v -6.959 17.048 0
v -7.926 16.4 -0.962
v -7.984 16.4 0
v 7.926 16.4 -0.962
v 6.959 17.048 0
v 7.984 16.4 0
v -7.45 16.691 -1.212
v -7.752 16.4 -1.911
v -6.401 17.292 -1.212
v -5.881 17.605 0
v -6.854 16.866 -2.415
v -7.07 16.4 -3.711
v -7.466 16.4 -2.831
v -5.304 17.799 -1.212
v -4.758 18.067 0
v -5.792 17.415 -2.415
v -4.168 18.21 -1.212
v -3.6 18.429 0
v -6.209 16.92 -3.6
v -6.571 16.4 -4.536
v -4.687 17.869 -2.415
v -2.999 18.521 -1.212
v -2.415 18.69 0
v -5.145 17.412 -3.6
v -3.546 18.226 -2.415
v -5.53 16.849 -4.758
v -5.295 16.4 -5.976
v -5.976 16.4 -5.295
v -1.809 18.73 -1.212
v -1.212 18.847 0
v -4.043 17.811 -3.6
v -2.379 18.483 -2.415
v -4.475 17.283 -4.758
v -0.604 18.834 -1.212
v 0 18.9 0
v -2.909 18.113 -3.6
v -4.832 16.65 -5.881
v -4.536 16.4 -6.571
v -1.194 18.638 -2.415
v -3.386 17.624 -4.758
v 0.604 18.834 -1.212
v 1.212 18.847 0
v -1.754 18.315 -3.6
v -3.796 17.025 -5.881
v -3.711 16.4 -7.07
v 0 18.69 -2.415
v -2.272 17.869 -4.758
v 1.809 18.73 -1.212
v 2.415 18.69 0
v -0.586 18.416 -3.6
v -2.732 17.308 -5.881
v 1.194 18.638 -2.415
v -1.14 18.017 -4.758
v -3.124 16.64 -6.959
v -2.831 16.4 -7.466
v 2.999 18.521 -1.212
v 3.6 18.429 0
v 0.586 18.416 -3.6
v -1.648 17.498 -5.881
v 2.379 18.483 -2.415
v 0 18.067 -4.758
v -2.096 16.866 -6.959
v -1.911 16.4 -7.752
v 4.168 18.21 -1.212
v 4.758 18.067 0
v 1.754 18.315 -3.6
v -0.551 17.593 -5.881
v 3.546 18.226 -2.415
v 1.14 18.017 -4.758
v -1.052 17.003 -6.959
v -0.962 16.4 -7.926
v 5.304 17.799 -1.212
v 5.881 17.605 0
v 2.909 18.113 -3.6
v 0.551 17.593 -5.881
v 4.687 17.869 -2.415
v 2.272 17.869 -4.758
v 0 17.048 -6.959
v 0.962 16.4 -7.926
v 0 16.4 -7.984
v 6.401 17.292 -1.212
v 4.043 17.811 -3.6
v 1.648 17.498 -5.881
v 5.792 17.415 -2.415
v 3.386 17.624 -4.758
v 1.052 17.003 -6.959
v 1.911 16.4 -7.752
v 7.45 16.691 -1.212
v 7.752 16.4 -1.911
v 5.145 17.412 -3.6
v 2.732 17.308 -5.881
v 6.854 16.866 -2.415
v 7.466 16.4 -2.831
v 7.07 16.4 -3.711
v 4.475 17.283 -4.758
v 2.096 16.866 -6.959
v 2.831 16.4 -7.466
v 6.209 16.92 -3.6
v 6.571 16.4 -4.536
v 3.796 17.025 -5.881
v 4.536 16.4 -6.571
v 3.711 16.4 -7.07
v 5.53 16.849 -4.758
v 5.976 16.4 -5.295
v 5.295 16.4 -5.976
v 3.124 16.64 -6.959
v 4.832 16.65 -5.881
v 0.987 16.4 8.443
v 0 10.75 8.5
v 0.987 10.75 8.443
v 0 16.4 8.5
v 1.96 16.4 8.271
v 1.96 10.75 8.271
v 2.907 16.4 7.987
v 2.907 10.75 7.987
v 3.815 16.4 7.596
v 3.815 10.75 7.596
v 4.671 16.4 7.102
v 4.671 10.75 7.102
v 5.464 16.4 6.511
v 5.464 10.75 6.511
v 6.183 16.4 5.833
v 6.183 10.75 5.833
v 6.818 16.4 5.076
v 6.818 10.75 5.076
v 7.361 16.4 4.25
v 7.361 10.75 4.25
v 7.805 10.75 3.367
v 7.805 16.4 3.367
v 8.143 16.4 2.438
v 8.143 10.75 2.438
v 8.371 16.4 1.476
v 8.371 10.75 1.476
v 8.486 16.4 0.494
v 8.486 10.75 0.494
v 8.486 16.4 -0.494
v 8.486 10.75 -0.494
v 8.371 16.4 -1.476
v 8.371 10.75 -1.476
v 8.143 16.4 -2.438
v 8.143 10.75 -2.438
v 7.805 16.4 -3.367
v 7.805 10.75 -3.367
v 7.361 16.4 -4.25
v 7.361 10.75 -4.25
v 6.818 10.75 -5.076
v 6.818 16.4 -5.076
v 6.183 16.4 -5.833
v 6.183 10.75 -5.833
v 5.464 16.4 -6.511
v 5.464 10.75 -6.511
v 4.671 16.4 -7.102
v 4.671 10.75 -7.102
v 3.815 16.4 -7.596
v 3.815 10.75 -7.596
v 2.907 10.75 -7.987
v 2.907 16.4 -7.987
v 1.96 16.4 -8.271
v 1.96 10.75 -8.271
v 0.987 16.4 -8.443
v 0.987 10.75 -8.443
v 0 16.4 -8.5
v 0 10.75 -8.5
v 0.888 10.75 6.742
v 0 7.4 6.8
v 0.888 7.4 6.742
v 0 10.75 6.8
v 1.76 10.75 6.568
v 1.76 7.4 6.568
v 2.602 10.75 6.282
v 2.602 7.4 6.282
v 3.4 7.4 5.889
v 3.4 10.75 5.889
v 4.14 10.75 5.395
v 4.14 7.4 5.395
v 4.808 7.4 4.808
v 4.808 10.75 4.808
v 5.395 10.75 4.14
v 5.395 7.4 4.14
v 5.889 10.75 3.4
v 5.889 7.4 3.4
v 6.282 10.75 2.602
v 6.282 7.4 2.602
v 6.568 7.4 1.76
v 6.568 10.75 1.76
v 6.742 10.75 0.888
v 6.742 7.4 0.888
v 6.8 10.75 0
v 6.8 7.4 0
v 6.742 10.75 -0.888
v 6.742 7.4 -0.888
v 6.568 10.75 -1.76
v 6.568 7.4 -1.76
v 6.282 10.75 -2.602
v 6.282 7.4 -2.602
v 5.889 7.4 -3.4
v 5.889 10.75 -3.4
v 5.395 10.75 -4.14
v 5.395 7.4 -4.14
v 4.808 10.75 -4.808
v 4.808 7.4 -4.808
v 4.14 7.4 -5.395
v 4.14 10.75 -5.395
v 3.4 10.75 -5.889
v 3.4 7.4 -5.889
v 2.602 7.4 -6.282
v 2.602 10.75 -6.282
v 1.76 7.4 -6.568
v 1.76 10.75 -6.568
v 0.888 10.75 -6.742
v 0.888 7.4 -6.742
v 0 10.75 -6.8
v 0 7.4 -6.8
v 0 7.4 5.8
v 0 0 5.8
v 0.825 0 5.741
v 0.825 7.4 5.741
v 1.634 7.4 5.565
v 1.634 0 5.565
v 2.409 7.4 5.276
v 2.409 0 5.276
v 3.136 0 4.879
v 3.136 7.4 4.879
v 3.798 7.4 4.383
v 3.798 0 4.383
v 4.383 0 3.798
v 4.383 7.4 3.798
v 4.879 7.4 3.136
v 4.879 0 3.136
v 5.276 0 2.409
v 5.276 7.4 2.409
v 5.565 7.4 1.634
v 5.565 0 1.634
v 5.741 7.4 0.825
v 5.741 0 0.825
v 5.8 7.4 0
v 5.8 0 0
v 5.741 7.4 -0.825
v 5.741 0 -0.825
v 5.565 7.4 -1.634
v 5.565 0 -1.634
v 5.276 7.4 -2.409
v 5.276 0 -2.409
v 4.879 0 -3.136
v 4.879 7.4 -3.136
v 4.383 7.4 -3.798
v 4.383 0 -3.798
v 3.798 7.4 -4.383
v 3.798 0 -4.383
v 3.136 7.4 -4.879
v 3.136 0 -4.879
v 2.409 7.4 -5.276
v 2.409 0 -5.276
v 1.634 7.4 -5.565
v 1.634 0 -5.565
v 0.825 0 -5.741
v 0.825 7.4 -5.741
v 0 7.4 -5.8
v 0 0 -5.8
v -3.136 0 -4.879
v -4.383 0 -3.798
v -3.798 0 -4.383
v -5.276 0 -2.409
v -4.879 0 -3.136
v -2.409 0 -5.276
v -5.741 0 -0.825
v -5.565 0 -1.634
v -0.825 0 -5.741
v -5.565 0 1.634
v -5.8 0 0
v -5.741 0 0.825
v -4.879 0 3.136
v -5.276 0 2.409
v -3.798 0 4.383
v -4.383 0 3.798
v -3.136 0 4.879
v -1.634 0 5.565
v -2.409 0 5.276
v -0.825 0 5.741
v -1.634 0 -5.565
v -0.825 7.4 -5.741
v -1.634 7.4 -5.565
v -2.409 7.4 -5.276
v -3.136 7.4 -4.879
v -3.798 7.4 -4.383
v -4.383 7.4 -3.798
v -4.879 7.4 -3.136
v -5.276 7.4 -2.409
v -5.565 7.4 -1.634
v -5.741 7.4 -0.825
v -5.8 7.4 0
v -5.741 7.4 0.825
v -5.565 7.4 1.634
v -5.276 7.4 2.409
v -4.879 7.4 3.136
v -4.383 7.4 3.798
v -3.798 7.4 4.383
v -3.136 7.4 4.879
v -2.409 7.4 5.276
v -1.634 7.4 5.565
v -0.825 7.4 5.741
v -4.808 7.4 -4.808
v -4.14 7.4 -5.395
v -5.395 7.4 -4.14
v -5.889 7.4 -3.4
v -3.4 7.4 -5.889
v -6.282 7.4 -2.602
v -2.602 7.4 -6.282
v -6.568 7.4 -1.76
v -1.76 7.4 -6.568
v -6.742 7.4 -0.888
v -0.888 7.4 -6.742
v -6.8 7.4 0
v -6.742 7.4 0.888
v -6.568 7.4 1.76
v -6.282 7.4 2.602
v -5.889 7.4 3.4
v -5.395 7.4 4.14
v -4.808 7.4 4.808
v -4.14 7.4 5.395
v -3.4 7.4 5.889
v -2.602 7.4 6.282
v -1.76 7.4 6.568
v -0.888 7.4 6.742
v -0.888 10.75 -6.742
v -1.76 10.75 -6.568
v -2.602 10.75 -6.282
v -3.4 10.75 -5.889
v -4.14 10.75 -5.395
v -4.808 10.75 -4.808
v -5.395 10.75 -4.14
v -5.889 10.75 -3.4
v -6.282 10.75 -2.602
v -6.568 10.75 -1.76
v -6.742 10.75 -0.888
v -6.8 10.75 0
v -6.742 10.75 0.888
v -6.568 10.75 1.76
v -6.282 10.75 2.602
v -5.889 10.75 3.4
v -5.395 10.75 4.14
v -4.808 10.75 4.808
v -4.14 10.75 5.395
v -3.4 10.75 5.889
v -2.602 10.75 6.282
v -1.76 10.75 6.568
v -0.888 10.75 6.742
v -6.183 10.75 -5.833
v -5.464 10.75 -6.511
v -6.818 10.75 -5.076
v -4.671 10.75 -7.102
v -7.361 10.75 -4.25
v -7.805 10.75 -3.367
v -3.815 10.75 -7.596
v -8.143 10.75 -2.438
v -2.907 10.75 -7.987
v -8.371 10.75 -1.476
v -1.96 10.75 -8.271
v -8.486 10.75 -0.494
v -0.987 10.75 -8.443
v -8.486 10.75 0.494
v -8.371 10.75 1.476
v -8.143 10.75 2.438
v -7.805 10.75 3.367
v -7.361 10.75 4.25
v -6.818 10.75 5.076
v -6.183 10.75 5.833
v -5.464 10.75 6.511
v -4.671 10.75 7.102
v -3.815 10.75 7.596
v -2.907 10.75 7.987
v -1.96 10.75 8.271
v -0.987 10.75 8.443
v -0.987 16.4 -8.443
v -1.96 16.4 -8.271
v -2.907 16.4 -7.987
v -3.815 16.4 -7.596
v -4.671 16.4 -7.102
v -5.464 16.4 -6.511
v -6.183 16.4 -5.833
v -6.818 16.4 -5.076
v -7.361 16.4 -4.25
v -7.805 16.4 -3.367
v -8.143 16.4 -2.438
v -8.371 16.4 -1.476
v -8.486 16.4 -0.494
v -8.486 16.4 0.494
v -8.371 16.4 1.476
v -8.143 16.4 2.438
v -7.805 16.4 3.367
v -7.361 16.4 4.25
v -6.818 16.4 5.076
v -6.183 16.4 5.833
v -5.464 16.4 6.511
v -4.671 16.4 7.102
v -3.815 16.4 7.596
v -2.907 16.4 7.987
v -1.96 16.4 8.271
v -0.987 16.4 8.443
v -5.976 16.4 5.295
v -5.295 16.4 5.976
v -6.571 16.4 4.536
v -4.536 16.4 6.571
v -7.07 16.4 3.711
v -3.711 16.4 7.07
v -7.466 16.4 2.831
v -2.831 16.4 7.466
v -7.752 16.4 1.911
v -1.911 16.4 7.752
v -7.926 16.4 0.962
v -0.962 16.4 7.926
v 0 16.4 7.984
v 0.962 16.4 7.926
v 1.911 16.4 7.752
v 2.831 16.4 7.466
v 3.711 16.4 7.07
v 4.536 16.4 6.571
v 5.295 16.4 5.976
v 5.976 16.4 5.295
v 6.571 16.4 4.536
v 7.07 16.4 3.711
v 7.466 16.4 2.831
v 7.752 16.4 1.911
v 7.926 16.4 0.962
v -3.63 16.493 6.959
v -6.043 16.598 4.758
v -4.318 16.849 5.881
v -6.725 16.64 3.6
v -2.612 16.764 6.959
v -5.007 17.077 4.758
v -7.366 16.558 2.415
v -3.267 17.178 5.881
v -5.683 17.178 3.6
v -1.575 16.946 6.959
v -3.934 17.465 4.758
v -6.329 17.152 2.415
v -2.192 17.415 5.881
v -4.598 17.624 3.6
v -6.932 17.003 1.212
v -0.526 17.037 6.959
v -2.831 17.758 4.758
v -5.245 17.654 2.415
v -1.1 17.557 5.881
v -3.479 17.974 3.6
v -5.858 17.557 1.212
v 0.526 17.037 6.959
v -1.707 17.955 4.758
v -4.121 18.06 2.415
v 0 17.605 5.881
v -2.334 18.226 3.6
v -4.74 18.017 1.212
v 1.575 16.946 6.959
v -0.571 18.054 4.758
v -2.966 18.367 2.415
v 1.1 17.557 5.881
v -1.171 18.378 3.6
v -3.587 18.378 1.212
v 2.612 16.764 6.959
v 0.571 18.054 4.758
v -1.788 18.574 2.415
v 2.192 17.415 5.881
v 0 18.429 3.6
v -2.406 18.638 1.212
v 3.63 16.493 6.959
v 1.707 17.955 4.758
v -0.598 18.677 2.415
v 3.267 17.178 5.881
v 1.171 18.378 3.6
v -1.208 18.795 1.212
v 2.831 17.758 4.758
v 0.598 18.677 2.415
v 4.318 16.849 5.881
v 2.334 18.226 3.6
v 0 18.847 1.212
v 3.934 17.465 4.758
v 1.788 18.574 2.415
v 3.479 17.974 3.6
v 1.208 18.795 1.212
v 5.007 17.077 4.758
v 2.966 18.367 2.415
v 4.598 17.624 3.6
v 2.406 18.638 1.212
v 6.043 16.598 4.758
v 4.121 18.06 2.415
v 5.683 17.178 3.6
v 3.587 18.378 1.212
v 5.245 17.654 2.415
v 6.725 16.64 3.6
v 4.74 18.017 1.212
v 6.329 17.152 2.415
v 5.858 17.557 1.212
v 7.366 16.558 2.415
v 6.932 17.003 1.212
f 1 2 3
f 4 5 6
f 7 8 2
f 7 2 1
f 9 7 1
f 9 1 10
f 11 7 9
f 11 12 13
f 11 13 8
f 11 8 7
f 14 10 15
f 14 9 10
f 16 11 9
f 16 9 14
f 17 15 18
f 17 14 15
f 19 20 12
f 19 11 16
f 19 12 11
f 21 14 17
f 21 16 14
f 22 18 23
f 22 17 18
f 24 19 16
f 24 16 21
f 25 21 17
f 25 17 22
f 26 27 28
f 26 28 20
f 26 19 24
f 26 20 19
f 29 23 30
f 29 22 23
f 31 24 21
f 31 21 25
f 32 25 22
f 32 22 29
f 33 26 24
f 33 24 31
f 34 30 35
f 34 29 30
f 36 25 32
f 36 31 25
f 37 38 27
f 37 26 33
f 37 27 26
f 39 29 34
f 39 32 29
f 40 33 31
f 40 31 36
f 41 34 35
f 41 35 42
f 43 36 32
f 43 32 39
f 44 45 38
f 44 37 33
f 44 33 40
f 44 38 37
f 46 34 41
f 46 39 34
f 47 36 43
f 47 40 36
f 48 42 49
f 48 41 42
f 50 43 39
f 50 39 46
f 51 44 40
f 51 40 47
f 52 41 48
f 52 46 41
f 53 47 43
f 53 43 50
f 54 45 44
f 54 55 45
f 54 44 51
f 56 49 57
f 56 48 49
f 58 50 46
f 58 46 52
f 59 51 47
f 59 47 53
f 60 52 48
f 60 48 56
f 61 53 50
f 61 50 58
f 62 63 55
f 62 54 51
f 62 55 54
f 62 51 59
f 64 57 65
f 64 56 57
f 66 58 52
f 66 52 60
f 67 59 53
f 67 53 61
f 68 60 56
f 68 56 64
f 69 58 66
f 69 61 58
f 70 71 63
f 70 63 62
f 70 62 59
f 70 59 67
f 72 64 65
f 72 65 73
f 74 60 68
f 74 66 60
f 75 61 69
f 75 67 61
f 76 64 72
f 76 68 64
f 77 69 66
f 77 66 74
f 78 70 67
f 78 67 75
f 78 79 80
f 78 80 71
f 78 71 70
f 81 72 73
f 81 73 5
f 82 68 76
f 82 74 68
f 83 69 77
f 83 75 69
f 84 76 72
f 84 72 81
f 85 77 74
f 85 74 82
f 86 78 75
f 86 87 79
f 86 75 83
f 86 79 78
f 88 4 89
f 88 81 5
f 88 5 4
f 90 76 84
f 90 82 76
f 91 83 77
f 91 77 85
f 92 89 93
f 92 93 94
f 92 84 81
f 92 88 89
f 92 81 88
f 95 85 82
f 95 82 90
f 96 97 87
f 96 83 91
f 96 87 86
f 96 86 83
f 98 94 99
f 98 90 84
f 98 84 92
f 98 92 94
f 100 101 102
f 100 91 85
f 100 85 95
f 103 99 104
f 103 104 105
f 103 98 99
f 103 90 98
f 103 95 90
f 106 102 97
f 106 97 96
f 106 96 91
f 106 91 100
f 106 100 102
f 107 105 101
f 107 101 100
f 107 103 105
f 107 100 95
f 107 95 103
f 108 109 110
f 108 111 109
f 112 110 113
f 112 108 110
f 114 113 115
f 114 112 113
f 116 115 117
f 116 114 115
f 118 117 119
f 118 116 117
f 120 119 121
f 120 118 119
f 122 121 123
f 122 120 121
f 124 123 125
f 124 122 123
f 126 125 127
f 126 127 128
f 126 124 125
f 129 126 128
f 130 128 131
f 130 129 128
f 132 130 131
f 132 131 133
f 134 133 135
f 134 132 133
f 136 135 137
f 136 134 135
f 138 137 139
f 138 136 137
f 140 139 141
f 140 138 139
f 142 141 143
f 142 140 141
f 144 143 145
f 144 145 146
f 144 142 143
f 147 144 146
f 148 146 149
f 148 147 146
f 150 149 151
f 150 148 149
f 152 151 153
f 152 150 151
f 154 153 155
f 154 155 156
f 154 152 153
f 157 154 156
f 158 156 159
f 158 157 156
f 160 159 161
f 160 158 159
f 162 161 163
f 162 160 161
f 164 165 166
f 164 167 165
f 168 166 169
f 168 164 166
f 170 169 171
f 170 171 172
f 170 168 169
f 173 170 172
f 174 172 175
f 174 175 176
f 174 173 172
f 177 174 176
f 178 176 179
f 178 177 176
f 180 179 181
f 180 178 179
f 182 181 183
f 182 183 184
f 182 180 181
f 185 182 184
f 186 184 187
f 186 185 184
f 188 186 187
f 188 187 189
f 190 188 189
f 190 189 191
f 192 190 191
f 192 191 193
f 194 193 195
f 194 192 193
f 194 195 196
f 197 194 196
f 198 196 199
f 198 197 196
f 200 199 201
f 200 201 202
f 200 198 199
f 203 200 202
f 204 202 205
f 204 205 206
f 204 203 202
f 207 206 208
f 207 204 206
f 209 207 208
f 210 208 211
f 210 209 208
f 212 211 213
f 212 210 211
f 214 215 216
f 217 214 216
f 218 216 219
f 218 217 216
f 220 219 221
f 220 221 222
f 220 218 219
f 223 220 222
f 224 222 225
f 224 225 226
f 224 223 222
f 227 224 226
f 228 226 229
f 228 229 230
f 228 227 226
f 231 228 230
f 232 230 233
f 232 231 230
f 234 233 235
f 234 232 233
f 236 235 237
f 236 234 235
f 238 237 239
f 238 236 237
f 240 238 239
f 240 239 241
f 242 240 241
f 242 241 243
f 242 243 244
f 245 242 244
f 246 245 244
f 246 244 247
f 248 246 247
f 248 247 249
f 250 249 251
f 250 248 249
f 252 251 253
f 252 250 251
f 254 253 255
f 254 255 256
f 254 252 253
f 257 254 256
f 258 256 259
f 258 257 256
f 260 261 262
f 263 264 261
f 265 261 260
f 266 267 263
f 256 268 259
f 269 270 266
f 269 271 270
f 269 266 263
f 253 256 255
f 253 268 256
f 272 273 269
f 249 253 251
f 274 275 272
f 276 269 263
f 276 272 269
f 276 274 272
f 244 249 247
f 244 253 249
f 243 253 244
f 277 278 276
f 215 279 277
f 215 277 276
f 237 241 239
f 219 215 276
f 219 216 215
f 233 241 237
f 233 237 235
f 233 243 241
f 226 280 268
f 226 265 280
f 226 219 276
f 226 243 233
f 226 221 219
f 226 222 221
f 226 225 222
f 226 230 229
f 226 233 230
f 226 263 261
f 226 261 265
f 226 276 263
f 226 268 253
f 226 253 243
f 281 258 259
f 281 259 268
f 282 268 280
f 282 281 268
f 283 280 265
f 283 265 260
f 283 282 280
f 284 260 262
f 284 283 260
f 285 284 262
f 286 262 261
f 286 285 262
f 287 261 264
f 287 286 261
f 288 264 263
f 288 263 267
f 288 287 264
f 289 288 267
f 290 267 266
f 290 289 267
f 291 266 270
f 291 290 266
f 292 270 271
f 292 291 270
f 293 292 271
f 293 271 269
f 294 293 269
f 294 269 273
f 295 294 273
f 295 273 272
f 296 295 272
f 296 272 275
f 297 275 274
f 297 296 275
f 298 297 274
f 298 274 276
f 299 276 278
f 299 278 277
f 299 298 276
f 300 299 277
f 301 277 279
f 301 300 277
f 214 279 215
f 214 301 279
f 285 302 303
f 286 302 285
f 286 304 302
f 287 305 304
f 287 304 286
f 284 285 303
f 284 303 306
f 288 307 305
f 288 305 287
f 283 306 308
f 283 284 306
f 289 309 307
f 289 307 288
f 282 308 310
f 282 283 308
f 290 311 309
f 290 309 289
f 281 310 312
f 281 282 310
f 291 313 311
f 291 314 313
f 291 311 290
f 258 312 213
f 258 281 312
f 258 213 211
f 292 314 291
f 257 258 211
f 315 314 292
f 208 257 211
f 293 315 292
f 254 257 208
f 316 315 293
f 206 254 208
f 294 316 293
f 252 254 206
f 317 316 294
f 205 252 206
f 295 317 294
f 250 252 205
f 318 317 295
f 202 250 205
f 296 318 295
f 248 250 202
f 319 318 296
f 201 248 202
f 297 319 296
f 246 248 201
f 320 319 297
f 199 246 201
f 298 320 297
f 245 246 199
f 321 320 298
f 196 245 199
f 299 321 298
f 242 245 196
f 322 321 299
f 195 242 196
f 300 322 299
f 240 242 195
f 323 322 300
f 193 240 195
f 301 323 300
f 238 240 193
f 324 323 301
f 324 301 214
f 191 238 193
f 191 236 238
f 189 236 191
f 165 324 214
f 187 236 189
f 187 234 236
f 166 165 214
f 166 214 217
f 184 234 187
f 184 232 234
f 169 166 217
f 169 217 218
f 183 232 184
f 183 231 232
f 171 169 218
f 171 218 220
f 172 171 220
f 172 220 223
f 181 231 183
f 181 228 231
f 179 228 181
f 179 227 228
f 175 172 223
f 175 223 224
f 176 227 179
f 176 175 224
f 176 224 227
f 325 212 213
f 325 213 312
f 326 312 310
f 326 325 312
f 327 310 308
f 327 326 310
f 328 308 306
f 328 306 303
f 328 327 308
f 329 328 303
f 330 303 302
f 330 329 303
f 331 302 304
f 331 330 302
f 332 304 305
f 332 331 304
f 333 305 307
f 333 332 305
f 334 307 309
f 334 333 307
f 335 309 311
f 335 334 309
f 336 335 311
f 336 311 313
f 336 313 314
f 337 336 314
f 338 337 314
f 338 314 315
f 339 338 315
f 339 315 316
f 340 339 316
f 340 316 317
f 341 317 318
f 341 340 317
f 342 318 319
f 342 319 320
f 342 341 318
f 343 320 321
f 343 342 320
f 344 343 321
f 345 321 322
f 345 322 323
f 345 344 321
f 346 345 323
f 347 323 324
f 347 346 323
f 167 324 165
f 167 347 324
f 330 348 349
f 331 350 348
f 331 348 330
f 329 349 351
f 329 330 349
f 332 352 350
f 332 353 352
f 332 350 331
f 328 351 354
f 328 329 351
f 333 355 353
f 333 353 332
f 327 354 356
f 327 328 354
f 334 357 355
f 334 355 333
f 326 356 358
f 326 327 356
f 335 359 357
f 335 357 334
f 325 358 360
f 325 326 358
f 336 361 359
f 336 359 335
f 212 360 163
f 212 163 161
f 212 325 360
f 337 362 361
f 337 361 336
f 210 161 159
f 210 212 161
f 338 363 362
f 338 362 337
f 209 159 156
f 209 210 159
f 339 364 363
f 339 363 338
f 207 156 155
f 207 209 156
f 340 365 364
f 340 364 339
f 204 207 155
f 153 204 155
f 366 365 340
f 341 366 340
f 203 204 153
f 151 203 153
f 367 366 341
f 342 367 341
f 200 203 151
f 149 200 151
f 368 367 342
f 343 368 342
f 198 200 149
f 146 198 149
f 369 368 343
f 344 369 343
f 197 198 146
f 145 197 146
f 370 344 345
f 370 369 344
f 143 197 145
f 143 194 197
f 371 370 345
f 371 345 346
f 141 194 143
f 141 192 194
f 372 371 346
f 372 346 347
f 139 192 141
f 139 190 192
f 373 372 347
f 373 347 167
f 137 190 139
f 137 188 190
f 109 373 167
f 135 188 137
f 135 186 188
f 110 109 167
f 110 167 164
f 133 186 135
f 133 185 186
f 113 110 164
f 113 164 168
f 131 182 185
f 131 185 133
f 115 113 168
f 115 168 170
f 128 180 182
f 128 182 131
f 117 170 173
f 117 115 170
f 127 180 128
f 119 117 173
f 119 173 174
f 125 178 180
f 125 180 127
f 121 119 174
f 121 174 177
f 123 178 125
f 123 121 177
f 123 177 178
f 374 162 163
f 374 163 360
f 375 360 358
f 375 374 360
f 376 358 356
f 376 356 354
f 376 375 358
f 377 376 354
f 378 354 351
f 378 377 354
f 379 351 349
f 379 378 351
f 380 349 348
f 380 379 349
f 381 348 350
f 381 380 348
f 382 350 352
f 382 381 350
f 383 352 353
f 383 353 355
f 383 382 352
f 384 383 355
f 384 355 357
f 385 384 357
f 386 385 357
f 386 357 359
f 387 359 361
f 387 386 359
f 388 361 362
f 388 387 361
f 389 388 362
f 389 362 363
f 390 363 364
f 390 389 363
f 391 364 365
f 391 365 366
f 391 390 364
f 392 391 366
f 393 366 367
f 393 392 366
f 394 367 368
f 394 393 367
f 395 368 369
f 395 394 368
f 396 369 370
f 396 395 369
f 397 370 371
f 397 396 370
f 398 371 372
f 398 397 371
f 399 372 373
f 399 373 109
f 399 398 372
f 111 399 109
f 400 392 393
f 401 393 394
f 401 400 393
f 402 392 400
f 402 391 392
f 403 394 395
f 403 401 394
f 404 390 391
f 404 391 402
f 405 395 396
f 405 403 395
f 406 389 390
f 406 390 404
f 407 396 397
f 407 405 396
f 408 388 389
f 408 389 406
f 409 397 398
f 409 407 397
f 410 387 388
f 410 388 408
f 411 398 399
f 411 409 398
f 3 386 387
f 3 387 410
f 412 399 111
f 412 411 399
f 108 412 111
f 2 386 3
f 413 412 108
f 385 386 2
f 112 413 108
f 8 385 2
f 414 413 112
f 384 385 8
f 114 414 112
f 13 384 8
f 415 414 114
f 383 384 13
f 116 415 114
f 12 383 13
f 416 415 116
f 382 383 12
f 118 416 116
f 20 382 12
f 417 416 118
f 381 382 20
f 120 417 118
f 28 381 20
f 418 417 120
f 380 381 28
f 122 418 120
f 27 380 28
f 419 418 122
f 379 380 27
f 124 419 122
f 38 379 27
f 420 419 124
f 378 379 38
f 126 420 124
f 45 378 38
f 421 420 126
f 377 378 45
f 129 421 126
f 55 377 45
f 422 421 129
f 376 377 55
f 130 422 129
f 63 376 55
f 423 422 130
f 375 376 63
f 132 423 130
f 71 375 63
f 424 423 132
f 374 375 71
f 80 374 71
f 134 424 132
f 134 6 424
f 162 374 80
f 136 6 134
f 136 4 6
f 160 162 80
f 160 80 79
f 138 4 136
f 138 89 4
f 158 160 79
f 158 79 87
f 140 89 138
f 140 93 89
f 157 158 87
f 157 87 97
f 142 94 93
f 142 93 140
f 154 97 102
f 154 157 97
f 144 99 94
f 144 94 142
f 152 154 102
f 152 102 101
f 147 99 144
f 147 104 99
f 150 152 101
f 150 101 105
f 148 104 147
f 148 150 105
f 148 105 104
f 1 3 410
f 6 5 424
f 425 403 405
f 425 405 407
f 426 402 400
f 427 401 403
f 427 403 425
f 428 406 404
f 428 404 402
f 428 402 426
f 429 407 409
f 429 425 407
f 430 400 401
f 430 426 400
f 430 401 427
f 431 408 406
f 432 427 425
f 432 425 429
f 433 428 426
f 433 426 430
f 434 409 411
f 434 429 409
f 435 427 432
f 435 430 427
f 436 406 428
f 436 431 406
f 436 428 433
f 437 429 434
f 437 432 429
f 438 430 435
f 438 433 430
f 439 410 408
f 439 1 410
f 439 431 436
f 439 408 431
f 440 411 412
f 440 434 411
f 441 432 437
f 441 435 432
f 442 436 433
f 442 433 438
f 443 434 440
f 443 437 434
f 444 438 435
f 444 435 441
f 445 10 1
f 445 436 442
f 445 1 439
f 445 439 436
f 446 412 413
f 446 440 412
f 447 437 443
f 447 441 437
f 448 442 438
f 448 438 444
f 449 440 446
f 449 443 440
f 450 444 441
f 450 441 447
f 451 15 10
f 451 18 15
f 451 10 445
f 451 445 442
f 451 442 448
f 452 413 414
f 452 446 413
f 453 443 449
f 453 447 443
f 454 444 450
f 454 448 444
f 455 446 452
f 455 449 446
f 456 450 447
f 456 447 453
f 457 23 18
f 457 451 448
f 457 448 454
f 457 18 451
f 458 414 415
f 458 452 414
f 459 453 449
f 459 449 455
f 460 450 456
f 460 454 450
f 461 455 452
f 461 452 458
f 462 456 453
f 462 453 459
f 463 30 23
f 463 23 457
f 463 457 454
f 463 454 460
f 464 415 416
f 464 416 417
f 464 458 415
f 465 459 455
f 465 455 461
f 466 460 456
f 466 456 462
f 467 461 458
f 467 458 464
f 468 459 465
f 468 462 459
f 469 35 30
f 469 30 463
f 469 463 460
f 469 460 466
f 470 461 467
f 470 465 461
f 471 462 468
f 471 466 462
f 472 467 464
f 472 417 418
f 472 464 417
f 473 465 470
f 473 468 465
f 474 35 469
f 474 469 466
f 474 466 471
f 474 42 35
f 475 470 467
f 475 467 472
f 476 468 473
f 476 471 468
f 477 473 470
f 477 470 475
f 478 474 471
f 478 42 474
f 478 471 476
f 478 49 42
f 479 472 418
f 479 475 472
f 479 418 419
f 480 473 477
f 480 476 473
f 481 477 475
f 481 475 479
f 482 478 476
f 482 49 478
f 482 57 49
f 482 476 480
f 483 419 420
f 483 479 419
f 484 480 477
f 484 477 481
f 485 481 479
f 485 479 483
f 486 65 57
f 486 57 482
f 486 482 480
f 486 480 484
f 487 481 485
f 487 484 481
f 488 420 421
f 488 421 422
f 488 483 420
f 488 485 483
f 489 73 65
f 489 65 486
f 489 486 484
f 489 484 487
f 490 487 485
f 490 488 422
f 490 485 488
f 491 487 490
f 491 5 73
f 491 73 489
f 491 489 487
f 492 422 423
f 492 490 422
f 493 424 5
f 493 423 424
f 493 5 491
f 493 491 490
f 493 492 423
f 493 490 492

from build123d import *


with BuildPart() as part:
    # 草图1 → 旋转1 (revolve)
    with BuildSketch(Plane.XY, mode=Mode.PRIVATE) as revolve_1_sk:
        with BuildLine():
            Line((0, 0), (5.8, 0))
            Line((5.8, 0), (5.8, 7.4))
            Line((5.8, 7.4), (6.8, 7.4))
            Line((6.8, 7.4), (6.8, 10.75))
            Line((6.8, 10.75), (8.5, 10.75))
            Line((8.5, 10.75), (8.5, 16.4))
            Line((8.5, 16.4), (7.984359711, 16.4))
            ThreePointArc((7.984359711, 16.4), (4.183300133, 18.260389216), (0, 18.9))
            Line((0, 18.9), (0, 0))
        make_face()
    revolve(revolve_1_sk.sketch.rotate(Axis((0, 18.9, 0), (0, -1, 0)), 90), axis=Axis((0, 18.9, 0), (0, -1, 0)))


solid = part.part
